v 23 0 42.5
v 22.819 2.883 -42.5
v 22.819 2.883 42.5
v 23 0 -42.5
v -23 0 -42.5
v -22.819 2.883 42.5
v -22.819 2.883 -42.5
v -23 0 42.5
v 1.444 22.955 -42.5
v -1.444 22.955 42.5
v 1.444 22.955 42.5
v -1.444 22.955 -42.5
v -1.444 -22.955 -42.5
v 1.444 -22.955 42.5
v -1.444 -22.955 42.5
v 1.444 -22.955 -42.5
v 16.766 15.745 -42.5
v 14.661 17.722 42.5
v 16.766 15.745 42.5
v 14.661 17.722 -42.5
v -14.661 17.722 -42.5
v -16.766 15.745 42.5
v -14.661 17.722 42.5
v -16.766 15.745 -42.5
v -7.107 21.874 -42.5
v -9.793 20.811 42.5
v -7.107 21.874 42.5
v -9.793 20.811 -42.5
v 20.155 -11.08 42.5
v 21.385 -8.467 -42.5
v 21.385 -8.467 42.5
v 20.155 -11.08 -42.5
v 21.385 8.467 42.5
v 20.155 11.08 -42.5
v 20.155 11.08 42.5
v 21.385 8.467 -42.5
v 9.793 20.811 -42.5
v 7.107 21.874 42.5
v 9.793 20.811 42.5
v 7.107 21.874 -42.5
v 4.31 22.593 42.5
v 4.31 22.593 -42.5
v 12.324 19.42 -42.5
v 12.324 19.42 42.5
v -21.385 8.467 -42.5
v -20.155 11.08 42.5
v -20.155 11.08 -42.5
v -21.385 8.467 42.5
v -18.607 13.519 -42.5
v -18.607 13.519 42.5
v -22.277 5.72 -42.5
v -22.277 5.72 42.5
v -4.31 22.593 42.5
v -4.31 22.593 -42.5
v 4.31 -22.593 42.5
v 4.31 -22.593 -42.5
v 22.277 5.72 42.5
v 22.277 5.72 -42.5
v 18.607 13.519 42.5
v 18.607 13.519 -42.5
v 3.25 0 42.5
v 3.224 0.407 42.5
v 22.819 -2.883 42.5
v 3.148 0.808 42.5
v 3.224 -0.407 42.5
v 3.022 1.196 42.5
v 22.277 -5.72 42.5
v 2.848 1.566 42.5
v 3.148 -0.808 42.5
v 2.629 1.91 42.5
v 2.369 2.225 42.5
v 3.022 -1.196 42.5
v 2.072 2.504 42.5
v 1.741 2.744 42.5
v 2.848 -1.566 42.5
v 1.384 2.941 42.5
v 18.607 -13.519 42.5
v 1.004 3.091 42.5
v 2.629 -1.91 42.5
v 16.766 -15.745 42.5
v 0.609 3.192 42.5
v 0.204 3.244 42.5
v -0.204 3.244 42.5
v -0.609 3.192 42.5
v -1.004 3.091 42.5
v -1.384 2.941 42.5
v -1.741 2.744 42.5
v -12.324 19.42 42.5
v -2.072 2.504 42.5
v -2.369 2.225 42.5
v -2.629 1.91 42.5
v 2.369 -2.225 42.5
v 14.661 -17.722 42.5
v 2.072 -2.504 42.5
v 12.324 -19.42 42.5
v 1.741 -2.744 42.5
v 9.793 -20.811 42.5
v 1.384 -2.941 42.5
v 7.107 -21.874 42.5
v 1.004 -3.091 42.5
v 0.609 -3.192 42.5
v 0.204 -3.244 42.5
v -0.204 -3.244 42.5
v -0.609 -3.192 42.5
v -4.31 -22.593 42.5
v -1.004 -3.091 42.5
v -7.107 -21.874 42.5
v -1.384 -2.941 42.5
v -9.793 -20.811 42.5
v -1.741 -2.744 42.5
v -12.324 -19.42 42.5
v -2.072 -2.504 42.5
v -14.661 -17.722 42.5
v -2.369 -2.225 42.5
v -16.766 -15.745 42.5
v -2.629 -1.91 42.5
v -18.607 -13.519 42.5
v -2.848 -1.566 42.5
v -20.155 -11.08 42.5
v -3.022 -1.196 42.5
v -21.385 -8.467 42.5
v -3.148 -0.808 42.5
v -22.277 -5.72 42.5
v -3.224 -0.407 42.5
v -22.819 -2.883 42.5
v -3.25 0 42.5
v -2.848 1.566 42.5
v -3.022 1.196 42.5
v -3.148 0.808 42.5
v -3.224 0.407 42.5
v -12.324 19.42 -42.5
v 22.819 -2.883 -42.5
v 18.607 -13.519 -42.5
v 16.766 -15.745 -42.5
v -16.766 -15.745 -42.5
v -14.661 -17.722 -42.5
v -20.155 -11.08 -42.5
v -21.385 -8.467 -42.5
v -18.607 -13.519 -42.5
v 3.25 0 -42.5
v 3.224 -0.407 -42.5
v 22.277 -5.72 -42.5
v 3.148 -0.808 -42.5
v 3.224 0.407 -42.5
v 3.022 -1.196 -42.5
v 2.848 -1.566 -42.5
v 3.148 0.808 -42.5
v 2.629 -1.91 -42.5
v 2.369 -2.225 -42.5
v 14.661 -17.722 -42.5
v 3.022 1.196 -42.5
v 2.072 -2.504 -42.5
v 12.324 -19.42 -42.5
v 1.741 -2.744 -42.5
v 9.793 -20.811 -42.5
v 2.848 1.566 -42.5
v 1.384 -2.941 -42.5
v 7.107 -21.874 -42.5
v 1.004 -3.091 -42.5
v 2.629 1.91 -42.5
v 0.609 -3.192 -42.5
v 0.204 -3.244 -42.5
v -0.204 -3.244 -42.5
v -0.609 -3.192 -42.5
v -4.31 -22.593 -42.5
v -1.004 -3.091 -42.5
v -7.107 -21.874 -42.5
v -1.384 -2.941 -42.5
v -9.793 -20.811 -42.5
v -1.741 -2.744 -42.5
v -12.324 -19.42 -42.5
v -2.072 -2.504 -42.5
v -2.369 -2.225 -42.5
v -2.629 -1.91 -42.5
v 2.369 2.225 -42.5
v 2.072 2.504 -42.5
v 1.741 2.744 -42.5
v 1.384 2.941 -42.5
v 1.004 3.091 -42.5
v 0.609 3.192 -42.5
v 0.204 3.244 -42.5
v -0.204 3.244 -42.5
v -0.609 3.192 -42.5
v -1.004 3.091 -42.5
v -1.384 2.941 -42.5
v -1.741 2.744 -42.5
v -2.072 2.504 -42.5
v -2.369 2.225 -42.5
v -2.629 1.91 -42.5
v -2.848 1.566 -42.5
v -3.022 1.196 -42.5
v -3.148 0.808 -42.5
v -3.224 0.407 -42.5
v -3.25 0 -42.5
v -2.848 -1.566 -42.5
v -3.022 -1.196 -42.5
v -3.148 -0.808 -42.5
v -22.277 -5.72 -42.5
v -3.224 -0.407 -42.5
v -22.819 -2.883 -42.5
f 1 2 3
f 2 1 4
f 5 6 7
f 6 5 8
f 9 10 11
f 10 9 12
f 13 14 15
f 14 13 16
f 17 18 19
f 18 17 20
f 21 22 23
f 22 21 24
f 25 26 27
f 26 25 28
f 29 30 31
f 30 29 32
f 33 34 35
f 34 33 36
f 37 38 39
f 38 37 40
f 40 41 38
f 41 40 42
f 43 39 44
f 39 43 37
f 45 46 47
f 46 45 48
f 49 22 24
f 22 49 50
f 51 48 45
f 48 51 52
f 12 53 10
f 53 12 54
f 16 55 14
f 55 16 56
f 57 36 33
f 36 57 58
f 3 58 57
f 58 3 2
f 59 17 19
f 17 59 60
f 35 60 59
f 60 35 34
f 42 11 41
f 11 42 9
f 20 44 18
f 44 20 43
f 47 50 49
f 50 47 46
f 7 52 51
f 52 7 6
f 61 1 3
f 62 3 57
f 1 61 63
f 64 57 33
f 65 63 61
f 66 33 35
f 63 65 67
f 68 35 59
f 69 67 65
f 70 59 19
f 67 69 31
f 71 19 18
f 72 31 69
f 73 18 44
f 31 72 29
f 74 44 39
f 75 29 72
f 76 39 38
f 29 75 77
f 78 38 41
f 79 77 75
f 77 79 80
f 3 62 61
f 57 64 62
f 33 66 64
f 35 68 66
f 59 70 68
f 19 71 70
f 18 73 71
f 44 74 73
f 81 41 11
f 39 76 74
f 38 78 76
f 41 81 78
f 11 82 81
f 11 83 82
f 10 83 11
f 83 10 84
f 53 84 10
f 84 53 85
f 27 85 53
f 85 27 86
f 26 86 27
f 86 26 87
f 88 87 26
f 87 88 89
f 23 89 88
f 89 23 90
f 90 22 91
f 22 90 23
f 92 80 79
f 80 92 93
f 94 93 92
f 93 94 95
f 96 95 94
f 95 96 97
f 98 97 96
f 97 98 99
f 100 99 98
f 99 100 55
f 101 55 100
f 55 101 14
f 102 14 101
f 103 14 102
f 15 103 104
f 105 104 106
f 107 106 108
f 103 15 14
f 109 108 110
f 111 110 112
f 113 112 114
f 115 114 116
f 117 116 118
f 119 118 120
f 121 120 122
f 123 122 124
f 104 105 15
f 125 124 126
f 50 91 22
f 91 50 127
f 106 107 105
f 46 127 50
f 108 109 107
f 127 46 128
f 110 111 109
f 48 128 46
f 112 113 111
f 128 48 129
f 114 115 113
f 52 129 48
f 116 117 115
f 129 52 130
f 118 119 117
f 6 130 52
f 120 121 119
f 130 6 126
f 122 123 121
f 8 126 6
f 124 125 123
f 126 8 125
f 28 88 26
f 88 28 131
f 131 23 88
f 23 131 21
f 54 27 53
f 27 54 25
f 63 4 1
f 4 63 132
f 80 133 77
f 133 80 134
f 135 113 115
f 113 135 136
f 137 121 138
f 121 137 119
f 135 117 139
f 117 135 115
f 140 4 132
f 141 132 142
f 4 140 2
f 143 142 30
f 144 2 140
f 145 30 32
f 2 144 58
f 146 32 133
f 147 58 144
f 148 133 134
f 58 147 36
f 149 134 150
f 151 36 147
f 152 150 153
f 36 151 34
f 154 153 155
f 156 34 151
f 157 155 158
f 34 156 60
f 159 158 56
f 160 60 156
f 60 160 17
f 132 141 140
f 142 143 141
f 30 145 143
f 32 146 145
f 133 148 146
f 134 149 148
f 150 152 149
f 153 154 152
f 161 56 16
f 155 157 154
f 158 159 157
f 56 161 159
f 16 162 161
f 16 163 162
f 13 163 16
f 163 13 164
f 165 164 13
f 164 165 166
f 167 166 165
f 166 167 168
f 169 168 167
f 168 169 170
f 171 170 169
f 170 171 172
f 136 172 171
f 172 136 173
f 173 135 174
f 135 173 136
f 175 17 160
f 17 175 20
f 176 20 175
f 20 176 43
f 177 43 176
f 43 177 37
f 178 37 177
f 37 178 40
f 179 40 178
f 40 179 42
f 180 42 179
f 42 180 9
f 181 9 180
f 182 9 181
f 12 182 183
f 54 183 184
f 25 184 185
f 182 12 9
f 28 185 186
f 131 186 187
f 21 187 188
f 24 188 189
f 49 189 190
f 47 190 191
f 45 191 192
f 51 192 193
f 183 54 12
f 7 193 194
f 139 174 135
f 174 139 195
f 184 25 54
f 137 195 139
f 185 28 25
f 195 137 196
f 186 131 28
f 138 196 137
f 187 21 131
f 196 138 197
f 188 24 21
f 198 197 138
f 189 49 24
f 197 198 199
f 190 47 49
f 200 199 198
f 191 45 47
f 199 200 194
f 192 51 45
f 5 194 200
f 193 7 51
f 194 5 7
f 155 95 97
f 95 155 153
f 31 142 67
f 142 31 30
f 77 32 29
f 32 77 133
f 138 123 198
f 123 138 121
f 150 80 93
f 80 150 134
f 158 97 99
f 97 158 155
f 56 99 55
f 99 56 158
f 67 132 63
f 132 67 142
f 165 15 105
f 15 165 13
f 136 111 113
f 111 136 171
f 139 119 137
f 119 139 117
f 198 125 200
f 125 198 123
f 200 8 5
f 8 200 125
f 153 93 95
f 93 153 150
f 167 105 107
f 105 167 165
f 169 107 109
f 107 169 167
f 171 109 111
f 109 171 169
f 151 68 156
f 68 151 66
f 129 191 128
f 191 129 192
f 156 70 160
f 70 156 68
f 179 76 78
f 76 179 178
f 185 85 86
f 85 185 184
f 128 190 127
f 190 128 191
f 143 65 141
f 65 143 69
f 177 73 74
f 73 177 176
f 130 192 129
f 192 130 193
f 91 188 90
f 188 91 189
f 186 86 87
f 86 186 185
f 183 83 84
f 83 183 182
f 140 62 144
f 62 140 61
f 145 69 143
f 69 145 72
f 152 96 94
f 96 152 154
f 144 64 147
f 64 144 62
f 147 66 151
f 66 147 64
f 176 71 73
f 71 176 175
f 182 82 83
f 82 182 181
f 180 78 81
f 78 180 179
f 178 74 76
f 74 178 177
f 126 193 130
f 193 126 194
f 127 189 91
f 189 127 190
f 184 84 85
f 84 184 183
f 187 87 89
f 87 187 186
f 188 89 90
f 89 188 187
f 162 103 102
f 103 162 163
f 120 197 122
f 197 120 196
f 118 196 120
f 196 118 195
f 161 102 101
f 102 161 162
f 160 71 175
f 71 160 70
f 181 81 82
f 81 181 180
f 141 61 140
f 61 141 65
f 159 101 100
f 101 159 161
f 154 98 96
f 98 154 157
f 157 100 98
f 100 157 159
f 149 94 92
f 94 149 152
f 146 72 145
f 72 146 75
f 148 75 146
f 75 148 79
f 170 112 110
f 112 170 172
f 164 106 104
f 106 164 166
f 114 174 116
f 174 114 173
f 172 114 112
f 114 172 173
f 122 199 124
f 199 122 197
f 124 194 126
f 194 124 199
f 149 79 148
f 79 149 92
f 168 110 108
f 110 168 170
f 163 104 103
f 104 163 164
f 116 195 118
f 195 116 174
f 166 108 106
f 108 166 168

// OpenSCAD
$fn = 50;


difference() {
	union() {
		translate(v = [0, 0, -42.5000000000]) {
			cylinder(h = 85, r = 23.0000000000);
		}
	}
	union() {
		translate(v = [0, 0, -100.0000000000]) {
			cylinder(h = 200, r = 3.2500000000);
		}
	}
}
